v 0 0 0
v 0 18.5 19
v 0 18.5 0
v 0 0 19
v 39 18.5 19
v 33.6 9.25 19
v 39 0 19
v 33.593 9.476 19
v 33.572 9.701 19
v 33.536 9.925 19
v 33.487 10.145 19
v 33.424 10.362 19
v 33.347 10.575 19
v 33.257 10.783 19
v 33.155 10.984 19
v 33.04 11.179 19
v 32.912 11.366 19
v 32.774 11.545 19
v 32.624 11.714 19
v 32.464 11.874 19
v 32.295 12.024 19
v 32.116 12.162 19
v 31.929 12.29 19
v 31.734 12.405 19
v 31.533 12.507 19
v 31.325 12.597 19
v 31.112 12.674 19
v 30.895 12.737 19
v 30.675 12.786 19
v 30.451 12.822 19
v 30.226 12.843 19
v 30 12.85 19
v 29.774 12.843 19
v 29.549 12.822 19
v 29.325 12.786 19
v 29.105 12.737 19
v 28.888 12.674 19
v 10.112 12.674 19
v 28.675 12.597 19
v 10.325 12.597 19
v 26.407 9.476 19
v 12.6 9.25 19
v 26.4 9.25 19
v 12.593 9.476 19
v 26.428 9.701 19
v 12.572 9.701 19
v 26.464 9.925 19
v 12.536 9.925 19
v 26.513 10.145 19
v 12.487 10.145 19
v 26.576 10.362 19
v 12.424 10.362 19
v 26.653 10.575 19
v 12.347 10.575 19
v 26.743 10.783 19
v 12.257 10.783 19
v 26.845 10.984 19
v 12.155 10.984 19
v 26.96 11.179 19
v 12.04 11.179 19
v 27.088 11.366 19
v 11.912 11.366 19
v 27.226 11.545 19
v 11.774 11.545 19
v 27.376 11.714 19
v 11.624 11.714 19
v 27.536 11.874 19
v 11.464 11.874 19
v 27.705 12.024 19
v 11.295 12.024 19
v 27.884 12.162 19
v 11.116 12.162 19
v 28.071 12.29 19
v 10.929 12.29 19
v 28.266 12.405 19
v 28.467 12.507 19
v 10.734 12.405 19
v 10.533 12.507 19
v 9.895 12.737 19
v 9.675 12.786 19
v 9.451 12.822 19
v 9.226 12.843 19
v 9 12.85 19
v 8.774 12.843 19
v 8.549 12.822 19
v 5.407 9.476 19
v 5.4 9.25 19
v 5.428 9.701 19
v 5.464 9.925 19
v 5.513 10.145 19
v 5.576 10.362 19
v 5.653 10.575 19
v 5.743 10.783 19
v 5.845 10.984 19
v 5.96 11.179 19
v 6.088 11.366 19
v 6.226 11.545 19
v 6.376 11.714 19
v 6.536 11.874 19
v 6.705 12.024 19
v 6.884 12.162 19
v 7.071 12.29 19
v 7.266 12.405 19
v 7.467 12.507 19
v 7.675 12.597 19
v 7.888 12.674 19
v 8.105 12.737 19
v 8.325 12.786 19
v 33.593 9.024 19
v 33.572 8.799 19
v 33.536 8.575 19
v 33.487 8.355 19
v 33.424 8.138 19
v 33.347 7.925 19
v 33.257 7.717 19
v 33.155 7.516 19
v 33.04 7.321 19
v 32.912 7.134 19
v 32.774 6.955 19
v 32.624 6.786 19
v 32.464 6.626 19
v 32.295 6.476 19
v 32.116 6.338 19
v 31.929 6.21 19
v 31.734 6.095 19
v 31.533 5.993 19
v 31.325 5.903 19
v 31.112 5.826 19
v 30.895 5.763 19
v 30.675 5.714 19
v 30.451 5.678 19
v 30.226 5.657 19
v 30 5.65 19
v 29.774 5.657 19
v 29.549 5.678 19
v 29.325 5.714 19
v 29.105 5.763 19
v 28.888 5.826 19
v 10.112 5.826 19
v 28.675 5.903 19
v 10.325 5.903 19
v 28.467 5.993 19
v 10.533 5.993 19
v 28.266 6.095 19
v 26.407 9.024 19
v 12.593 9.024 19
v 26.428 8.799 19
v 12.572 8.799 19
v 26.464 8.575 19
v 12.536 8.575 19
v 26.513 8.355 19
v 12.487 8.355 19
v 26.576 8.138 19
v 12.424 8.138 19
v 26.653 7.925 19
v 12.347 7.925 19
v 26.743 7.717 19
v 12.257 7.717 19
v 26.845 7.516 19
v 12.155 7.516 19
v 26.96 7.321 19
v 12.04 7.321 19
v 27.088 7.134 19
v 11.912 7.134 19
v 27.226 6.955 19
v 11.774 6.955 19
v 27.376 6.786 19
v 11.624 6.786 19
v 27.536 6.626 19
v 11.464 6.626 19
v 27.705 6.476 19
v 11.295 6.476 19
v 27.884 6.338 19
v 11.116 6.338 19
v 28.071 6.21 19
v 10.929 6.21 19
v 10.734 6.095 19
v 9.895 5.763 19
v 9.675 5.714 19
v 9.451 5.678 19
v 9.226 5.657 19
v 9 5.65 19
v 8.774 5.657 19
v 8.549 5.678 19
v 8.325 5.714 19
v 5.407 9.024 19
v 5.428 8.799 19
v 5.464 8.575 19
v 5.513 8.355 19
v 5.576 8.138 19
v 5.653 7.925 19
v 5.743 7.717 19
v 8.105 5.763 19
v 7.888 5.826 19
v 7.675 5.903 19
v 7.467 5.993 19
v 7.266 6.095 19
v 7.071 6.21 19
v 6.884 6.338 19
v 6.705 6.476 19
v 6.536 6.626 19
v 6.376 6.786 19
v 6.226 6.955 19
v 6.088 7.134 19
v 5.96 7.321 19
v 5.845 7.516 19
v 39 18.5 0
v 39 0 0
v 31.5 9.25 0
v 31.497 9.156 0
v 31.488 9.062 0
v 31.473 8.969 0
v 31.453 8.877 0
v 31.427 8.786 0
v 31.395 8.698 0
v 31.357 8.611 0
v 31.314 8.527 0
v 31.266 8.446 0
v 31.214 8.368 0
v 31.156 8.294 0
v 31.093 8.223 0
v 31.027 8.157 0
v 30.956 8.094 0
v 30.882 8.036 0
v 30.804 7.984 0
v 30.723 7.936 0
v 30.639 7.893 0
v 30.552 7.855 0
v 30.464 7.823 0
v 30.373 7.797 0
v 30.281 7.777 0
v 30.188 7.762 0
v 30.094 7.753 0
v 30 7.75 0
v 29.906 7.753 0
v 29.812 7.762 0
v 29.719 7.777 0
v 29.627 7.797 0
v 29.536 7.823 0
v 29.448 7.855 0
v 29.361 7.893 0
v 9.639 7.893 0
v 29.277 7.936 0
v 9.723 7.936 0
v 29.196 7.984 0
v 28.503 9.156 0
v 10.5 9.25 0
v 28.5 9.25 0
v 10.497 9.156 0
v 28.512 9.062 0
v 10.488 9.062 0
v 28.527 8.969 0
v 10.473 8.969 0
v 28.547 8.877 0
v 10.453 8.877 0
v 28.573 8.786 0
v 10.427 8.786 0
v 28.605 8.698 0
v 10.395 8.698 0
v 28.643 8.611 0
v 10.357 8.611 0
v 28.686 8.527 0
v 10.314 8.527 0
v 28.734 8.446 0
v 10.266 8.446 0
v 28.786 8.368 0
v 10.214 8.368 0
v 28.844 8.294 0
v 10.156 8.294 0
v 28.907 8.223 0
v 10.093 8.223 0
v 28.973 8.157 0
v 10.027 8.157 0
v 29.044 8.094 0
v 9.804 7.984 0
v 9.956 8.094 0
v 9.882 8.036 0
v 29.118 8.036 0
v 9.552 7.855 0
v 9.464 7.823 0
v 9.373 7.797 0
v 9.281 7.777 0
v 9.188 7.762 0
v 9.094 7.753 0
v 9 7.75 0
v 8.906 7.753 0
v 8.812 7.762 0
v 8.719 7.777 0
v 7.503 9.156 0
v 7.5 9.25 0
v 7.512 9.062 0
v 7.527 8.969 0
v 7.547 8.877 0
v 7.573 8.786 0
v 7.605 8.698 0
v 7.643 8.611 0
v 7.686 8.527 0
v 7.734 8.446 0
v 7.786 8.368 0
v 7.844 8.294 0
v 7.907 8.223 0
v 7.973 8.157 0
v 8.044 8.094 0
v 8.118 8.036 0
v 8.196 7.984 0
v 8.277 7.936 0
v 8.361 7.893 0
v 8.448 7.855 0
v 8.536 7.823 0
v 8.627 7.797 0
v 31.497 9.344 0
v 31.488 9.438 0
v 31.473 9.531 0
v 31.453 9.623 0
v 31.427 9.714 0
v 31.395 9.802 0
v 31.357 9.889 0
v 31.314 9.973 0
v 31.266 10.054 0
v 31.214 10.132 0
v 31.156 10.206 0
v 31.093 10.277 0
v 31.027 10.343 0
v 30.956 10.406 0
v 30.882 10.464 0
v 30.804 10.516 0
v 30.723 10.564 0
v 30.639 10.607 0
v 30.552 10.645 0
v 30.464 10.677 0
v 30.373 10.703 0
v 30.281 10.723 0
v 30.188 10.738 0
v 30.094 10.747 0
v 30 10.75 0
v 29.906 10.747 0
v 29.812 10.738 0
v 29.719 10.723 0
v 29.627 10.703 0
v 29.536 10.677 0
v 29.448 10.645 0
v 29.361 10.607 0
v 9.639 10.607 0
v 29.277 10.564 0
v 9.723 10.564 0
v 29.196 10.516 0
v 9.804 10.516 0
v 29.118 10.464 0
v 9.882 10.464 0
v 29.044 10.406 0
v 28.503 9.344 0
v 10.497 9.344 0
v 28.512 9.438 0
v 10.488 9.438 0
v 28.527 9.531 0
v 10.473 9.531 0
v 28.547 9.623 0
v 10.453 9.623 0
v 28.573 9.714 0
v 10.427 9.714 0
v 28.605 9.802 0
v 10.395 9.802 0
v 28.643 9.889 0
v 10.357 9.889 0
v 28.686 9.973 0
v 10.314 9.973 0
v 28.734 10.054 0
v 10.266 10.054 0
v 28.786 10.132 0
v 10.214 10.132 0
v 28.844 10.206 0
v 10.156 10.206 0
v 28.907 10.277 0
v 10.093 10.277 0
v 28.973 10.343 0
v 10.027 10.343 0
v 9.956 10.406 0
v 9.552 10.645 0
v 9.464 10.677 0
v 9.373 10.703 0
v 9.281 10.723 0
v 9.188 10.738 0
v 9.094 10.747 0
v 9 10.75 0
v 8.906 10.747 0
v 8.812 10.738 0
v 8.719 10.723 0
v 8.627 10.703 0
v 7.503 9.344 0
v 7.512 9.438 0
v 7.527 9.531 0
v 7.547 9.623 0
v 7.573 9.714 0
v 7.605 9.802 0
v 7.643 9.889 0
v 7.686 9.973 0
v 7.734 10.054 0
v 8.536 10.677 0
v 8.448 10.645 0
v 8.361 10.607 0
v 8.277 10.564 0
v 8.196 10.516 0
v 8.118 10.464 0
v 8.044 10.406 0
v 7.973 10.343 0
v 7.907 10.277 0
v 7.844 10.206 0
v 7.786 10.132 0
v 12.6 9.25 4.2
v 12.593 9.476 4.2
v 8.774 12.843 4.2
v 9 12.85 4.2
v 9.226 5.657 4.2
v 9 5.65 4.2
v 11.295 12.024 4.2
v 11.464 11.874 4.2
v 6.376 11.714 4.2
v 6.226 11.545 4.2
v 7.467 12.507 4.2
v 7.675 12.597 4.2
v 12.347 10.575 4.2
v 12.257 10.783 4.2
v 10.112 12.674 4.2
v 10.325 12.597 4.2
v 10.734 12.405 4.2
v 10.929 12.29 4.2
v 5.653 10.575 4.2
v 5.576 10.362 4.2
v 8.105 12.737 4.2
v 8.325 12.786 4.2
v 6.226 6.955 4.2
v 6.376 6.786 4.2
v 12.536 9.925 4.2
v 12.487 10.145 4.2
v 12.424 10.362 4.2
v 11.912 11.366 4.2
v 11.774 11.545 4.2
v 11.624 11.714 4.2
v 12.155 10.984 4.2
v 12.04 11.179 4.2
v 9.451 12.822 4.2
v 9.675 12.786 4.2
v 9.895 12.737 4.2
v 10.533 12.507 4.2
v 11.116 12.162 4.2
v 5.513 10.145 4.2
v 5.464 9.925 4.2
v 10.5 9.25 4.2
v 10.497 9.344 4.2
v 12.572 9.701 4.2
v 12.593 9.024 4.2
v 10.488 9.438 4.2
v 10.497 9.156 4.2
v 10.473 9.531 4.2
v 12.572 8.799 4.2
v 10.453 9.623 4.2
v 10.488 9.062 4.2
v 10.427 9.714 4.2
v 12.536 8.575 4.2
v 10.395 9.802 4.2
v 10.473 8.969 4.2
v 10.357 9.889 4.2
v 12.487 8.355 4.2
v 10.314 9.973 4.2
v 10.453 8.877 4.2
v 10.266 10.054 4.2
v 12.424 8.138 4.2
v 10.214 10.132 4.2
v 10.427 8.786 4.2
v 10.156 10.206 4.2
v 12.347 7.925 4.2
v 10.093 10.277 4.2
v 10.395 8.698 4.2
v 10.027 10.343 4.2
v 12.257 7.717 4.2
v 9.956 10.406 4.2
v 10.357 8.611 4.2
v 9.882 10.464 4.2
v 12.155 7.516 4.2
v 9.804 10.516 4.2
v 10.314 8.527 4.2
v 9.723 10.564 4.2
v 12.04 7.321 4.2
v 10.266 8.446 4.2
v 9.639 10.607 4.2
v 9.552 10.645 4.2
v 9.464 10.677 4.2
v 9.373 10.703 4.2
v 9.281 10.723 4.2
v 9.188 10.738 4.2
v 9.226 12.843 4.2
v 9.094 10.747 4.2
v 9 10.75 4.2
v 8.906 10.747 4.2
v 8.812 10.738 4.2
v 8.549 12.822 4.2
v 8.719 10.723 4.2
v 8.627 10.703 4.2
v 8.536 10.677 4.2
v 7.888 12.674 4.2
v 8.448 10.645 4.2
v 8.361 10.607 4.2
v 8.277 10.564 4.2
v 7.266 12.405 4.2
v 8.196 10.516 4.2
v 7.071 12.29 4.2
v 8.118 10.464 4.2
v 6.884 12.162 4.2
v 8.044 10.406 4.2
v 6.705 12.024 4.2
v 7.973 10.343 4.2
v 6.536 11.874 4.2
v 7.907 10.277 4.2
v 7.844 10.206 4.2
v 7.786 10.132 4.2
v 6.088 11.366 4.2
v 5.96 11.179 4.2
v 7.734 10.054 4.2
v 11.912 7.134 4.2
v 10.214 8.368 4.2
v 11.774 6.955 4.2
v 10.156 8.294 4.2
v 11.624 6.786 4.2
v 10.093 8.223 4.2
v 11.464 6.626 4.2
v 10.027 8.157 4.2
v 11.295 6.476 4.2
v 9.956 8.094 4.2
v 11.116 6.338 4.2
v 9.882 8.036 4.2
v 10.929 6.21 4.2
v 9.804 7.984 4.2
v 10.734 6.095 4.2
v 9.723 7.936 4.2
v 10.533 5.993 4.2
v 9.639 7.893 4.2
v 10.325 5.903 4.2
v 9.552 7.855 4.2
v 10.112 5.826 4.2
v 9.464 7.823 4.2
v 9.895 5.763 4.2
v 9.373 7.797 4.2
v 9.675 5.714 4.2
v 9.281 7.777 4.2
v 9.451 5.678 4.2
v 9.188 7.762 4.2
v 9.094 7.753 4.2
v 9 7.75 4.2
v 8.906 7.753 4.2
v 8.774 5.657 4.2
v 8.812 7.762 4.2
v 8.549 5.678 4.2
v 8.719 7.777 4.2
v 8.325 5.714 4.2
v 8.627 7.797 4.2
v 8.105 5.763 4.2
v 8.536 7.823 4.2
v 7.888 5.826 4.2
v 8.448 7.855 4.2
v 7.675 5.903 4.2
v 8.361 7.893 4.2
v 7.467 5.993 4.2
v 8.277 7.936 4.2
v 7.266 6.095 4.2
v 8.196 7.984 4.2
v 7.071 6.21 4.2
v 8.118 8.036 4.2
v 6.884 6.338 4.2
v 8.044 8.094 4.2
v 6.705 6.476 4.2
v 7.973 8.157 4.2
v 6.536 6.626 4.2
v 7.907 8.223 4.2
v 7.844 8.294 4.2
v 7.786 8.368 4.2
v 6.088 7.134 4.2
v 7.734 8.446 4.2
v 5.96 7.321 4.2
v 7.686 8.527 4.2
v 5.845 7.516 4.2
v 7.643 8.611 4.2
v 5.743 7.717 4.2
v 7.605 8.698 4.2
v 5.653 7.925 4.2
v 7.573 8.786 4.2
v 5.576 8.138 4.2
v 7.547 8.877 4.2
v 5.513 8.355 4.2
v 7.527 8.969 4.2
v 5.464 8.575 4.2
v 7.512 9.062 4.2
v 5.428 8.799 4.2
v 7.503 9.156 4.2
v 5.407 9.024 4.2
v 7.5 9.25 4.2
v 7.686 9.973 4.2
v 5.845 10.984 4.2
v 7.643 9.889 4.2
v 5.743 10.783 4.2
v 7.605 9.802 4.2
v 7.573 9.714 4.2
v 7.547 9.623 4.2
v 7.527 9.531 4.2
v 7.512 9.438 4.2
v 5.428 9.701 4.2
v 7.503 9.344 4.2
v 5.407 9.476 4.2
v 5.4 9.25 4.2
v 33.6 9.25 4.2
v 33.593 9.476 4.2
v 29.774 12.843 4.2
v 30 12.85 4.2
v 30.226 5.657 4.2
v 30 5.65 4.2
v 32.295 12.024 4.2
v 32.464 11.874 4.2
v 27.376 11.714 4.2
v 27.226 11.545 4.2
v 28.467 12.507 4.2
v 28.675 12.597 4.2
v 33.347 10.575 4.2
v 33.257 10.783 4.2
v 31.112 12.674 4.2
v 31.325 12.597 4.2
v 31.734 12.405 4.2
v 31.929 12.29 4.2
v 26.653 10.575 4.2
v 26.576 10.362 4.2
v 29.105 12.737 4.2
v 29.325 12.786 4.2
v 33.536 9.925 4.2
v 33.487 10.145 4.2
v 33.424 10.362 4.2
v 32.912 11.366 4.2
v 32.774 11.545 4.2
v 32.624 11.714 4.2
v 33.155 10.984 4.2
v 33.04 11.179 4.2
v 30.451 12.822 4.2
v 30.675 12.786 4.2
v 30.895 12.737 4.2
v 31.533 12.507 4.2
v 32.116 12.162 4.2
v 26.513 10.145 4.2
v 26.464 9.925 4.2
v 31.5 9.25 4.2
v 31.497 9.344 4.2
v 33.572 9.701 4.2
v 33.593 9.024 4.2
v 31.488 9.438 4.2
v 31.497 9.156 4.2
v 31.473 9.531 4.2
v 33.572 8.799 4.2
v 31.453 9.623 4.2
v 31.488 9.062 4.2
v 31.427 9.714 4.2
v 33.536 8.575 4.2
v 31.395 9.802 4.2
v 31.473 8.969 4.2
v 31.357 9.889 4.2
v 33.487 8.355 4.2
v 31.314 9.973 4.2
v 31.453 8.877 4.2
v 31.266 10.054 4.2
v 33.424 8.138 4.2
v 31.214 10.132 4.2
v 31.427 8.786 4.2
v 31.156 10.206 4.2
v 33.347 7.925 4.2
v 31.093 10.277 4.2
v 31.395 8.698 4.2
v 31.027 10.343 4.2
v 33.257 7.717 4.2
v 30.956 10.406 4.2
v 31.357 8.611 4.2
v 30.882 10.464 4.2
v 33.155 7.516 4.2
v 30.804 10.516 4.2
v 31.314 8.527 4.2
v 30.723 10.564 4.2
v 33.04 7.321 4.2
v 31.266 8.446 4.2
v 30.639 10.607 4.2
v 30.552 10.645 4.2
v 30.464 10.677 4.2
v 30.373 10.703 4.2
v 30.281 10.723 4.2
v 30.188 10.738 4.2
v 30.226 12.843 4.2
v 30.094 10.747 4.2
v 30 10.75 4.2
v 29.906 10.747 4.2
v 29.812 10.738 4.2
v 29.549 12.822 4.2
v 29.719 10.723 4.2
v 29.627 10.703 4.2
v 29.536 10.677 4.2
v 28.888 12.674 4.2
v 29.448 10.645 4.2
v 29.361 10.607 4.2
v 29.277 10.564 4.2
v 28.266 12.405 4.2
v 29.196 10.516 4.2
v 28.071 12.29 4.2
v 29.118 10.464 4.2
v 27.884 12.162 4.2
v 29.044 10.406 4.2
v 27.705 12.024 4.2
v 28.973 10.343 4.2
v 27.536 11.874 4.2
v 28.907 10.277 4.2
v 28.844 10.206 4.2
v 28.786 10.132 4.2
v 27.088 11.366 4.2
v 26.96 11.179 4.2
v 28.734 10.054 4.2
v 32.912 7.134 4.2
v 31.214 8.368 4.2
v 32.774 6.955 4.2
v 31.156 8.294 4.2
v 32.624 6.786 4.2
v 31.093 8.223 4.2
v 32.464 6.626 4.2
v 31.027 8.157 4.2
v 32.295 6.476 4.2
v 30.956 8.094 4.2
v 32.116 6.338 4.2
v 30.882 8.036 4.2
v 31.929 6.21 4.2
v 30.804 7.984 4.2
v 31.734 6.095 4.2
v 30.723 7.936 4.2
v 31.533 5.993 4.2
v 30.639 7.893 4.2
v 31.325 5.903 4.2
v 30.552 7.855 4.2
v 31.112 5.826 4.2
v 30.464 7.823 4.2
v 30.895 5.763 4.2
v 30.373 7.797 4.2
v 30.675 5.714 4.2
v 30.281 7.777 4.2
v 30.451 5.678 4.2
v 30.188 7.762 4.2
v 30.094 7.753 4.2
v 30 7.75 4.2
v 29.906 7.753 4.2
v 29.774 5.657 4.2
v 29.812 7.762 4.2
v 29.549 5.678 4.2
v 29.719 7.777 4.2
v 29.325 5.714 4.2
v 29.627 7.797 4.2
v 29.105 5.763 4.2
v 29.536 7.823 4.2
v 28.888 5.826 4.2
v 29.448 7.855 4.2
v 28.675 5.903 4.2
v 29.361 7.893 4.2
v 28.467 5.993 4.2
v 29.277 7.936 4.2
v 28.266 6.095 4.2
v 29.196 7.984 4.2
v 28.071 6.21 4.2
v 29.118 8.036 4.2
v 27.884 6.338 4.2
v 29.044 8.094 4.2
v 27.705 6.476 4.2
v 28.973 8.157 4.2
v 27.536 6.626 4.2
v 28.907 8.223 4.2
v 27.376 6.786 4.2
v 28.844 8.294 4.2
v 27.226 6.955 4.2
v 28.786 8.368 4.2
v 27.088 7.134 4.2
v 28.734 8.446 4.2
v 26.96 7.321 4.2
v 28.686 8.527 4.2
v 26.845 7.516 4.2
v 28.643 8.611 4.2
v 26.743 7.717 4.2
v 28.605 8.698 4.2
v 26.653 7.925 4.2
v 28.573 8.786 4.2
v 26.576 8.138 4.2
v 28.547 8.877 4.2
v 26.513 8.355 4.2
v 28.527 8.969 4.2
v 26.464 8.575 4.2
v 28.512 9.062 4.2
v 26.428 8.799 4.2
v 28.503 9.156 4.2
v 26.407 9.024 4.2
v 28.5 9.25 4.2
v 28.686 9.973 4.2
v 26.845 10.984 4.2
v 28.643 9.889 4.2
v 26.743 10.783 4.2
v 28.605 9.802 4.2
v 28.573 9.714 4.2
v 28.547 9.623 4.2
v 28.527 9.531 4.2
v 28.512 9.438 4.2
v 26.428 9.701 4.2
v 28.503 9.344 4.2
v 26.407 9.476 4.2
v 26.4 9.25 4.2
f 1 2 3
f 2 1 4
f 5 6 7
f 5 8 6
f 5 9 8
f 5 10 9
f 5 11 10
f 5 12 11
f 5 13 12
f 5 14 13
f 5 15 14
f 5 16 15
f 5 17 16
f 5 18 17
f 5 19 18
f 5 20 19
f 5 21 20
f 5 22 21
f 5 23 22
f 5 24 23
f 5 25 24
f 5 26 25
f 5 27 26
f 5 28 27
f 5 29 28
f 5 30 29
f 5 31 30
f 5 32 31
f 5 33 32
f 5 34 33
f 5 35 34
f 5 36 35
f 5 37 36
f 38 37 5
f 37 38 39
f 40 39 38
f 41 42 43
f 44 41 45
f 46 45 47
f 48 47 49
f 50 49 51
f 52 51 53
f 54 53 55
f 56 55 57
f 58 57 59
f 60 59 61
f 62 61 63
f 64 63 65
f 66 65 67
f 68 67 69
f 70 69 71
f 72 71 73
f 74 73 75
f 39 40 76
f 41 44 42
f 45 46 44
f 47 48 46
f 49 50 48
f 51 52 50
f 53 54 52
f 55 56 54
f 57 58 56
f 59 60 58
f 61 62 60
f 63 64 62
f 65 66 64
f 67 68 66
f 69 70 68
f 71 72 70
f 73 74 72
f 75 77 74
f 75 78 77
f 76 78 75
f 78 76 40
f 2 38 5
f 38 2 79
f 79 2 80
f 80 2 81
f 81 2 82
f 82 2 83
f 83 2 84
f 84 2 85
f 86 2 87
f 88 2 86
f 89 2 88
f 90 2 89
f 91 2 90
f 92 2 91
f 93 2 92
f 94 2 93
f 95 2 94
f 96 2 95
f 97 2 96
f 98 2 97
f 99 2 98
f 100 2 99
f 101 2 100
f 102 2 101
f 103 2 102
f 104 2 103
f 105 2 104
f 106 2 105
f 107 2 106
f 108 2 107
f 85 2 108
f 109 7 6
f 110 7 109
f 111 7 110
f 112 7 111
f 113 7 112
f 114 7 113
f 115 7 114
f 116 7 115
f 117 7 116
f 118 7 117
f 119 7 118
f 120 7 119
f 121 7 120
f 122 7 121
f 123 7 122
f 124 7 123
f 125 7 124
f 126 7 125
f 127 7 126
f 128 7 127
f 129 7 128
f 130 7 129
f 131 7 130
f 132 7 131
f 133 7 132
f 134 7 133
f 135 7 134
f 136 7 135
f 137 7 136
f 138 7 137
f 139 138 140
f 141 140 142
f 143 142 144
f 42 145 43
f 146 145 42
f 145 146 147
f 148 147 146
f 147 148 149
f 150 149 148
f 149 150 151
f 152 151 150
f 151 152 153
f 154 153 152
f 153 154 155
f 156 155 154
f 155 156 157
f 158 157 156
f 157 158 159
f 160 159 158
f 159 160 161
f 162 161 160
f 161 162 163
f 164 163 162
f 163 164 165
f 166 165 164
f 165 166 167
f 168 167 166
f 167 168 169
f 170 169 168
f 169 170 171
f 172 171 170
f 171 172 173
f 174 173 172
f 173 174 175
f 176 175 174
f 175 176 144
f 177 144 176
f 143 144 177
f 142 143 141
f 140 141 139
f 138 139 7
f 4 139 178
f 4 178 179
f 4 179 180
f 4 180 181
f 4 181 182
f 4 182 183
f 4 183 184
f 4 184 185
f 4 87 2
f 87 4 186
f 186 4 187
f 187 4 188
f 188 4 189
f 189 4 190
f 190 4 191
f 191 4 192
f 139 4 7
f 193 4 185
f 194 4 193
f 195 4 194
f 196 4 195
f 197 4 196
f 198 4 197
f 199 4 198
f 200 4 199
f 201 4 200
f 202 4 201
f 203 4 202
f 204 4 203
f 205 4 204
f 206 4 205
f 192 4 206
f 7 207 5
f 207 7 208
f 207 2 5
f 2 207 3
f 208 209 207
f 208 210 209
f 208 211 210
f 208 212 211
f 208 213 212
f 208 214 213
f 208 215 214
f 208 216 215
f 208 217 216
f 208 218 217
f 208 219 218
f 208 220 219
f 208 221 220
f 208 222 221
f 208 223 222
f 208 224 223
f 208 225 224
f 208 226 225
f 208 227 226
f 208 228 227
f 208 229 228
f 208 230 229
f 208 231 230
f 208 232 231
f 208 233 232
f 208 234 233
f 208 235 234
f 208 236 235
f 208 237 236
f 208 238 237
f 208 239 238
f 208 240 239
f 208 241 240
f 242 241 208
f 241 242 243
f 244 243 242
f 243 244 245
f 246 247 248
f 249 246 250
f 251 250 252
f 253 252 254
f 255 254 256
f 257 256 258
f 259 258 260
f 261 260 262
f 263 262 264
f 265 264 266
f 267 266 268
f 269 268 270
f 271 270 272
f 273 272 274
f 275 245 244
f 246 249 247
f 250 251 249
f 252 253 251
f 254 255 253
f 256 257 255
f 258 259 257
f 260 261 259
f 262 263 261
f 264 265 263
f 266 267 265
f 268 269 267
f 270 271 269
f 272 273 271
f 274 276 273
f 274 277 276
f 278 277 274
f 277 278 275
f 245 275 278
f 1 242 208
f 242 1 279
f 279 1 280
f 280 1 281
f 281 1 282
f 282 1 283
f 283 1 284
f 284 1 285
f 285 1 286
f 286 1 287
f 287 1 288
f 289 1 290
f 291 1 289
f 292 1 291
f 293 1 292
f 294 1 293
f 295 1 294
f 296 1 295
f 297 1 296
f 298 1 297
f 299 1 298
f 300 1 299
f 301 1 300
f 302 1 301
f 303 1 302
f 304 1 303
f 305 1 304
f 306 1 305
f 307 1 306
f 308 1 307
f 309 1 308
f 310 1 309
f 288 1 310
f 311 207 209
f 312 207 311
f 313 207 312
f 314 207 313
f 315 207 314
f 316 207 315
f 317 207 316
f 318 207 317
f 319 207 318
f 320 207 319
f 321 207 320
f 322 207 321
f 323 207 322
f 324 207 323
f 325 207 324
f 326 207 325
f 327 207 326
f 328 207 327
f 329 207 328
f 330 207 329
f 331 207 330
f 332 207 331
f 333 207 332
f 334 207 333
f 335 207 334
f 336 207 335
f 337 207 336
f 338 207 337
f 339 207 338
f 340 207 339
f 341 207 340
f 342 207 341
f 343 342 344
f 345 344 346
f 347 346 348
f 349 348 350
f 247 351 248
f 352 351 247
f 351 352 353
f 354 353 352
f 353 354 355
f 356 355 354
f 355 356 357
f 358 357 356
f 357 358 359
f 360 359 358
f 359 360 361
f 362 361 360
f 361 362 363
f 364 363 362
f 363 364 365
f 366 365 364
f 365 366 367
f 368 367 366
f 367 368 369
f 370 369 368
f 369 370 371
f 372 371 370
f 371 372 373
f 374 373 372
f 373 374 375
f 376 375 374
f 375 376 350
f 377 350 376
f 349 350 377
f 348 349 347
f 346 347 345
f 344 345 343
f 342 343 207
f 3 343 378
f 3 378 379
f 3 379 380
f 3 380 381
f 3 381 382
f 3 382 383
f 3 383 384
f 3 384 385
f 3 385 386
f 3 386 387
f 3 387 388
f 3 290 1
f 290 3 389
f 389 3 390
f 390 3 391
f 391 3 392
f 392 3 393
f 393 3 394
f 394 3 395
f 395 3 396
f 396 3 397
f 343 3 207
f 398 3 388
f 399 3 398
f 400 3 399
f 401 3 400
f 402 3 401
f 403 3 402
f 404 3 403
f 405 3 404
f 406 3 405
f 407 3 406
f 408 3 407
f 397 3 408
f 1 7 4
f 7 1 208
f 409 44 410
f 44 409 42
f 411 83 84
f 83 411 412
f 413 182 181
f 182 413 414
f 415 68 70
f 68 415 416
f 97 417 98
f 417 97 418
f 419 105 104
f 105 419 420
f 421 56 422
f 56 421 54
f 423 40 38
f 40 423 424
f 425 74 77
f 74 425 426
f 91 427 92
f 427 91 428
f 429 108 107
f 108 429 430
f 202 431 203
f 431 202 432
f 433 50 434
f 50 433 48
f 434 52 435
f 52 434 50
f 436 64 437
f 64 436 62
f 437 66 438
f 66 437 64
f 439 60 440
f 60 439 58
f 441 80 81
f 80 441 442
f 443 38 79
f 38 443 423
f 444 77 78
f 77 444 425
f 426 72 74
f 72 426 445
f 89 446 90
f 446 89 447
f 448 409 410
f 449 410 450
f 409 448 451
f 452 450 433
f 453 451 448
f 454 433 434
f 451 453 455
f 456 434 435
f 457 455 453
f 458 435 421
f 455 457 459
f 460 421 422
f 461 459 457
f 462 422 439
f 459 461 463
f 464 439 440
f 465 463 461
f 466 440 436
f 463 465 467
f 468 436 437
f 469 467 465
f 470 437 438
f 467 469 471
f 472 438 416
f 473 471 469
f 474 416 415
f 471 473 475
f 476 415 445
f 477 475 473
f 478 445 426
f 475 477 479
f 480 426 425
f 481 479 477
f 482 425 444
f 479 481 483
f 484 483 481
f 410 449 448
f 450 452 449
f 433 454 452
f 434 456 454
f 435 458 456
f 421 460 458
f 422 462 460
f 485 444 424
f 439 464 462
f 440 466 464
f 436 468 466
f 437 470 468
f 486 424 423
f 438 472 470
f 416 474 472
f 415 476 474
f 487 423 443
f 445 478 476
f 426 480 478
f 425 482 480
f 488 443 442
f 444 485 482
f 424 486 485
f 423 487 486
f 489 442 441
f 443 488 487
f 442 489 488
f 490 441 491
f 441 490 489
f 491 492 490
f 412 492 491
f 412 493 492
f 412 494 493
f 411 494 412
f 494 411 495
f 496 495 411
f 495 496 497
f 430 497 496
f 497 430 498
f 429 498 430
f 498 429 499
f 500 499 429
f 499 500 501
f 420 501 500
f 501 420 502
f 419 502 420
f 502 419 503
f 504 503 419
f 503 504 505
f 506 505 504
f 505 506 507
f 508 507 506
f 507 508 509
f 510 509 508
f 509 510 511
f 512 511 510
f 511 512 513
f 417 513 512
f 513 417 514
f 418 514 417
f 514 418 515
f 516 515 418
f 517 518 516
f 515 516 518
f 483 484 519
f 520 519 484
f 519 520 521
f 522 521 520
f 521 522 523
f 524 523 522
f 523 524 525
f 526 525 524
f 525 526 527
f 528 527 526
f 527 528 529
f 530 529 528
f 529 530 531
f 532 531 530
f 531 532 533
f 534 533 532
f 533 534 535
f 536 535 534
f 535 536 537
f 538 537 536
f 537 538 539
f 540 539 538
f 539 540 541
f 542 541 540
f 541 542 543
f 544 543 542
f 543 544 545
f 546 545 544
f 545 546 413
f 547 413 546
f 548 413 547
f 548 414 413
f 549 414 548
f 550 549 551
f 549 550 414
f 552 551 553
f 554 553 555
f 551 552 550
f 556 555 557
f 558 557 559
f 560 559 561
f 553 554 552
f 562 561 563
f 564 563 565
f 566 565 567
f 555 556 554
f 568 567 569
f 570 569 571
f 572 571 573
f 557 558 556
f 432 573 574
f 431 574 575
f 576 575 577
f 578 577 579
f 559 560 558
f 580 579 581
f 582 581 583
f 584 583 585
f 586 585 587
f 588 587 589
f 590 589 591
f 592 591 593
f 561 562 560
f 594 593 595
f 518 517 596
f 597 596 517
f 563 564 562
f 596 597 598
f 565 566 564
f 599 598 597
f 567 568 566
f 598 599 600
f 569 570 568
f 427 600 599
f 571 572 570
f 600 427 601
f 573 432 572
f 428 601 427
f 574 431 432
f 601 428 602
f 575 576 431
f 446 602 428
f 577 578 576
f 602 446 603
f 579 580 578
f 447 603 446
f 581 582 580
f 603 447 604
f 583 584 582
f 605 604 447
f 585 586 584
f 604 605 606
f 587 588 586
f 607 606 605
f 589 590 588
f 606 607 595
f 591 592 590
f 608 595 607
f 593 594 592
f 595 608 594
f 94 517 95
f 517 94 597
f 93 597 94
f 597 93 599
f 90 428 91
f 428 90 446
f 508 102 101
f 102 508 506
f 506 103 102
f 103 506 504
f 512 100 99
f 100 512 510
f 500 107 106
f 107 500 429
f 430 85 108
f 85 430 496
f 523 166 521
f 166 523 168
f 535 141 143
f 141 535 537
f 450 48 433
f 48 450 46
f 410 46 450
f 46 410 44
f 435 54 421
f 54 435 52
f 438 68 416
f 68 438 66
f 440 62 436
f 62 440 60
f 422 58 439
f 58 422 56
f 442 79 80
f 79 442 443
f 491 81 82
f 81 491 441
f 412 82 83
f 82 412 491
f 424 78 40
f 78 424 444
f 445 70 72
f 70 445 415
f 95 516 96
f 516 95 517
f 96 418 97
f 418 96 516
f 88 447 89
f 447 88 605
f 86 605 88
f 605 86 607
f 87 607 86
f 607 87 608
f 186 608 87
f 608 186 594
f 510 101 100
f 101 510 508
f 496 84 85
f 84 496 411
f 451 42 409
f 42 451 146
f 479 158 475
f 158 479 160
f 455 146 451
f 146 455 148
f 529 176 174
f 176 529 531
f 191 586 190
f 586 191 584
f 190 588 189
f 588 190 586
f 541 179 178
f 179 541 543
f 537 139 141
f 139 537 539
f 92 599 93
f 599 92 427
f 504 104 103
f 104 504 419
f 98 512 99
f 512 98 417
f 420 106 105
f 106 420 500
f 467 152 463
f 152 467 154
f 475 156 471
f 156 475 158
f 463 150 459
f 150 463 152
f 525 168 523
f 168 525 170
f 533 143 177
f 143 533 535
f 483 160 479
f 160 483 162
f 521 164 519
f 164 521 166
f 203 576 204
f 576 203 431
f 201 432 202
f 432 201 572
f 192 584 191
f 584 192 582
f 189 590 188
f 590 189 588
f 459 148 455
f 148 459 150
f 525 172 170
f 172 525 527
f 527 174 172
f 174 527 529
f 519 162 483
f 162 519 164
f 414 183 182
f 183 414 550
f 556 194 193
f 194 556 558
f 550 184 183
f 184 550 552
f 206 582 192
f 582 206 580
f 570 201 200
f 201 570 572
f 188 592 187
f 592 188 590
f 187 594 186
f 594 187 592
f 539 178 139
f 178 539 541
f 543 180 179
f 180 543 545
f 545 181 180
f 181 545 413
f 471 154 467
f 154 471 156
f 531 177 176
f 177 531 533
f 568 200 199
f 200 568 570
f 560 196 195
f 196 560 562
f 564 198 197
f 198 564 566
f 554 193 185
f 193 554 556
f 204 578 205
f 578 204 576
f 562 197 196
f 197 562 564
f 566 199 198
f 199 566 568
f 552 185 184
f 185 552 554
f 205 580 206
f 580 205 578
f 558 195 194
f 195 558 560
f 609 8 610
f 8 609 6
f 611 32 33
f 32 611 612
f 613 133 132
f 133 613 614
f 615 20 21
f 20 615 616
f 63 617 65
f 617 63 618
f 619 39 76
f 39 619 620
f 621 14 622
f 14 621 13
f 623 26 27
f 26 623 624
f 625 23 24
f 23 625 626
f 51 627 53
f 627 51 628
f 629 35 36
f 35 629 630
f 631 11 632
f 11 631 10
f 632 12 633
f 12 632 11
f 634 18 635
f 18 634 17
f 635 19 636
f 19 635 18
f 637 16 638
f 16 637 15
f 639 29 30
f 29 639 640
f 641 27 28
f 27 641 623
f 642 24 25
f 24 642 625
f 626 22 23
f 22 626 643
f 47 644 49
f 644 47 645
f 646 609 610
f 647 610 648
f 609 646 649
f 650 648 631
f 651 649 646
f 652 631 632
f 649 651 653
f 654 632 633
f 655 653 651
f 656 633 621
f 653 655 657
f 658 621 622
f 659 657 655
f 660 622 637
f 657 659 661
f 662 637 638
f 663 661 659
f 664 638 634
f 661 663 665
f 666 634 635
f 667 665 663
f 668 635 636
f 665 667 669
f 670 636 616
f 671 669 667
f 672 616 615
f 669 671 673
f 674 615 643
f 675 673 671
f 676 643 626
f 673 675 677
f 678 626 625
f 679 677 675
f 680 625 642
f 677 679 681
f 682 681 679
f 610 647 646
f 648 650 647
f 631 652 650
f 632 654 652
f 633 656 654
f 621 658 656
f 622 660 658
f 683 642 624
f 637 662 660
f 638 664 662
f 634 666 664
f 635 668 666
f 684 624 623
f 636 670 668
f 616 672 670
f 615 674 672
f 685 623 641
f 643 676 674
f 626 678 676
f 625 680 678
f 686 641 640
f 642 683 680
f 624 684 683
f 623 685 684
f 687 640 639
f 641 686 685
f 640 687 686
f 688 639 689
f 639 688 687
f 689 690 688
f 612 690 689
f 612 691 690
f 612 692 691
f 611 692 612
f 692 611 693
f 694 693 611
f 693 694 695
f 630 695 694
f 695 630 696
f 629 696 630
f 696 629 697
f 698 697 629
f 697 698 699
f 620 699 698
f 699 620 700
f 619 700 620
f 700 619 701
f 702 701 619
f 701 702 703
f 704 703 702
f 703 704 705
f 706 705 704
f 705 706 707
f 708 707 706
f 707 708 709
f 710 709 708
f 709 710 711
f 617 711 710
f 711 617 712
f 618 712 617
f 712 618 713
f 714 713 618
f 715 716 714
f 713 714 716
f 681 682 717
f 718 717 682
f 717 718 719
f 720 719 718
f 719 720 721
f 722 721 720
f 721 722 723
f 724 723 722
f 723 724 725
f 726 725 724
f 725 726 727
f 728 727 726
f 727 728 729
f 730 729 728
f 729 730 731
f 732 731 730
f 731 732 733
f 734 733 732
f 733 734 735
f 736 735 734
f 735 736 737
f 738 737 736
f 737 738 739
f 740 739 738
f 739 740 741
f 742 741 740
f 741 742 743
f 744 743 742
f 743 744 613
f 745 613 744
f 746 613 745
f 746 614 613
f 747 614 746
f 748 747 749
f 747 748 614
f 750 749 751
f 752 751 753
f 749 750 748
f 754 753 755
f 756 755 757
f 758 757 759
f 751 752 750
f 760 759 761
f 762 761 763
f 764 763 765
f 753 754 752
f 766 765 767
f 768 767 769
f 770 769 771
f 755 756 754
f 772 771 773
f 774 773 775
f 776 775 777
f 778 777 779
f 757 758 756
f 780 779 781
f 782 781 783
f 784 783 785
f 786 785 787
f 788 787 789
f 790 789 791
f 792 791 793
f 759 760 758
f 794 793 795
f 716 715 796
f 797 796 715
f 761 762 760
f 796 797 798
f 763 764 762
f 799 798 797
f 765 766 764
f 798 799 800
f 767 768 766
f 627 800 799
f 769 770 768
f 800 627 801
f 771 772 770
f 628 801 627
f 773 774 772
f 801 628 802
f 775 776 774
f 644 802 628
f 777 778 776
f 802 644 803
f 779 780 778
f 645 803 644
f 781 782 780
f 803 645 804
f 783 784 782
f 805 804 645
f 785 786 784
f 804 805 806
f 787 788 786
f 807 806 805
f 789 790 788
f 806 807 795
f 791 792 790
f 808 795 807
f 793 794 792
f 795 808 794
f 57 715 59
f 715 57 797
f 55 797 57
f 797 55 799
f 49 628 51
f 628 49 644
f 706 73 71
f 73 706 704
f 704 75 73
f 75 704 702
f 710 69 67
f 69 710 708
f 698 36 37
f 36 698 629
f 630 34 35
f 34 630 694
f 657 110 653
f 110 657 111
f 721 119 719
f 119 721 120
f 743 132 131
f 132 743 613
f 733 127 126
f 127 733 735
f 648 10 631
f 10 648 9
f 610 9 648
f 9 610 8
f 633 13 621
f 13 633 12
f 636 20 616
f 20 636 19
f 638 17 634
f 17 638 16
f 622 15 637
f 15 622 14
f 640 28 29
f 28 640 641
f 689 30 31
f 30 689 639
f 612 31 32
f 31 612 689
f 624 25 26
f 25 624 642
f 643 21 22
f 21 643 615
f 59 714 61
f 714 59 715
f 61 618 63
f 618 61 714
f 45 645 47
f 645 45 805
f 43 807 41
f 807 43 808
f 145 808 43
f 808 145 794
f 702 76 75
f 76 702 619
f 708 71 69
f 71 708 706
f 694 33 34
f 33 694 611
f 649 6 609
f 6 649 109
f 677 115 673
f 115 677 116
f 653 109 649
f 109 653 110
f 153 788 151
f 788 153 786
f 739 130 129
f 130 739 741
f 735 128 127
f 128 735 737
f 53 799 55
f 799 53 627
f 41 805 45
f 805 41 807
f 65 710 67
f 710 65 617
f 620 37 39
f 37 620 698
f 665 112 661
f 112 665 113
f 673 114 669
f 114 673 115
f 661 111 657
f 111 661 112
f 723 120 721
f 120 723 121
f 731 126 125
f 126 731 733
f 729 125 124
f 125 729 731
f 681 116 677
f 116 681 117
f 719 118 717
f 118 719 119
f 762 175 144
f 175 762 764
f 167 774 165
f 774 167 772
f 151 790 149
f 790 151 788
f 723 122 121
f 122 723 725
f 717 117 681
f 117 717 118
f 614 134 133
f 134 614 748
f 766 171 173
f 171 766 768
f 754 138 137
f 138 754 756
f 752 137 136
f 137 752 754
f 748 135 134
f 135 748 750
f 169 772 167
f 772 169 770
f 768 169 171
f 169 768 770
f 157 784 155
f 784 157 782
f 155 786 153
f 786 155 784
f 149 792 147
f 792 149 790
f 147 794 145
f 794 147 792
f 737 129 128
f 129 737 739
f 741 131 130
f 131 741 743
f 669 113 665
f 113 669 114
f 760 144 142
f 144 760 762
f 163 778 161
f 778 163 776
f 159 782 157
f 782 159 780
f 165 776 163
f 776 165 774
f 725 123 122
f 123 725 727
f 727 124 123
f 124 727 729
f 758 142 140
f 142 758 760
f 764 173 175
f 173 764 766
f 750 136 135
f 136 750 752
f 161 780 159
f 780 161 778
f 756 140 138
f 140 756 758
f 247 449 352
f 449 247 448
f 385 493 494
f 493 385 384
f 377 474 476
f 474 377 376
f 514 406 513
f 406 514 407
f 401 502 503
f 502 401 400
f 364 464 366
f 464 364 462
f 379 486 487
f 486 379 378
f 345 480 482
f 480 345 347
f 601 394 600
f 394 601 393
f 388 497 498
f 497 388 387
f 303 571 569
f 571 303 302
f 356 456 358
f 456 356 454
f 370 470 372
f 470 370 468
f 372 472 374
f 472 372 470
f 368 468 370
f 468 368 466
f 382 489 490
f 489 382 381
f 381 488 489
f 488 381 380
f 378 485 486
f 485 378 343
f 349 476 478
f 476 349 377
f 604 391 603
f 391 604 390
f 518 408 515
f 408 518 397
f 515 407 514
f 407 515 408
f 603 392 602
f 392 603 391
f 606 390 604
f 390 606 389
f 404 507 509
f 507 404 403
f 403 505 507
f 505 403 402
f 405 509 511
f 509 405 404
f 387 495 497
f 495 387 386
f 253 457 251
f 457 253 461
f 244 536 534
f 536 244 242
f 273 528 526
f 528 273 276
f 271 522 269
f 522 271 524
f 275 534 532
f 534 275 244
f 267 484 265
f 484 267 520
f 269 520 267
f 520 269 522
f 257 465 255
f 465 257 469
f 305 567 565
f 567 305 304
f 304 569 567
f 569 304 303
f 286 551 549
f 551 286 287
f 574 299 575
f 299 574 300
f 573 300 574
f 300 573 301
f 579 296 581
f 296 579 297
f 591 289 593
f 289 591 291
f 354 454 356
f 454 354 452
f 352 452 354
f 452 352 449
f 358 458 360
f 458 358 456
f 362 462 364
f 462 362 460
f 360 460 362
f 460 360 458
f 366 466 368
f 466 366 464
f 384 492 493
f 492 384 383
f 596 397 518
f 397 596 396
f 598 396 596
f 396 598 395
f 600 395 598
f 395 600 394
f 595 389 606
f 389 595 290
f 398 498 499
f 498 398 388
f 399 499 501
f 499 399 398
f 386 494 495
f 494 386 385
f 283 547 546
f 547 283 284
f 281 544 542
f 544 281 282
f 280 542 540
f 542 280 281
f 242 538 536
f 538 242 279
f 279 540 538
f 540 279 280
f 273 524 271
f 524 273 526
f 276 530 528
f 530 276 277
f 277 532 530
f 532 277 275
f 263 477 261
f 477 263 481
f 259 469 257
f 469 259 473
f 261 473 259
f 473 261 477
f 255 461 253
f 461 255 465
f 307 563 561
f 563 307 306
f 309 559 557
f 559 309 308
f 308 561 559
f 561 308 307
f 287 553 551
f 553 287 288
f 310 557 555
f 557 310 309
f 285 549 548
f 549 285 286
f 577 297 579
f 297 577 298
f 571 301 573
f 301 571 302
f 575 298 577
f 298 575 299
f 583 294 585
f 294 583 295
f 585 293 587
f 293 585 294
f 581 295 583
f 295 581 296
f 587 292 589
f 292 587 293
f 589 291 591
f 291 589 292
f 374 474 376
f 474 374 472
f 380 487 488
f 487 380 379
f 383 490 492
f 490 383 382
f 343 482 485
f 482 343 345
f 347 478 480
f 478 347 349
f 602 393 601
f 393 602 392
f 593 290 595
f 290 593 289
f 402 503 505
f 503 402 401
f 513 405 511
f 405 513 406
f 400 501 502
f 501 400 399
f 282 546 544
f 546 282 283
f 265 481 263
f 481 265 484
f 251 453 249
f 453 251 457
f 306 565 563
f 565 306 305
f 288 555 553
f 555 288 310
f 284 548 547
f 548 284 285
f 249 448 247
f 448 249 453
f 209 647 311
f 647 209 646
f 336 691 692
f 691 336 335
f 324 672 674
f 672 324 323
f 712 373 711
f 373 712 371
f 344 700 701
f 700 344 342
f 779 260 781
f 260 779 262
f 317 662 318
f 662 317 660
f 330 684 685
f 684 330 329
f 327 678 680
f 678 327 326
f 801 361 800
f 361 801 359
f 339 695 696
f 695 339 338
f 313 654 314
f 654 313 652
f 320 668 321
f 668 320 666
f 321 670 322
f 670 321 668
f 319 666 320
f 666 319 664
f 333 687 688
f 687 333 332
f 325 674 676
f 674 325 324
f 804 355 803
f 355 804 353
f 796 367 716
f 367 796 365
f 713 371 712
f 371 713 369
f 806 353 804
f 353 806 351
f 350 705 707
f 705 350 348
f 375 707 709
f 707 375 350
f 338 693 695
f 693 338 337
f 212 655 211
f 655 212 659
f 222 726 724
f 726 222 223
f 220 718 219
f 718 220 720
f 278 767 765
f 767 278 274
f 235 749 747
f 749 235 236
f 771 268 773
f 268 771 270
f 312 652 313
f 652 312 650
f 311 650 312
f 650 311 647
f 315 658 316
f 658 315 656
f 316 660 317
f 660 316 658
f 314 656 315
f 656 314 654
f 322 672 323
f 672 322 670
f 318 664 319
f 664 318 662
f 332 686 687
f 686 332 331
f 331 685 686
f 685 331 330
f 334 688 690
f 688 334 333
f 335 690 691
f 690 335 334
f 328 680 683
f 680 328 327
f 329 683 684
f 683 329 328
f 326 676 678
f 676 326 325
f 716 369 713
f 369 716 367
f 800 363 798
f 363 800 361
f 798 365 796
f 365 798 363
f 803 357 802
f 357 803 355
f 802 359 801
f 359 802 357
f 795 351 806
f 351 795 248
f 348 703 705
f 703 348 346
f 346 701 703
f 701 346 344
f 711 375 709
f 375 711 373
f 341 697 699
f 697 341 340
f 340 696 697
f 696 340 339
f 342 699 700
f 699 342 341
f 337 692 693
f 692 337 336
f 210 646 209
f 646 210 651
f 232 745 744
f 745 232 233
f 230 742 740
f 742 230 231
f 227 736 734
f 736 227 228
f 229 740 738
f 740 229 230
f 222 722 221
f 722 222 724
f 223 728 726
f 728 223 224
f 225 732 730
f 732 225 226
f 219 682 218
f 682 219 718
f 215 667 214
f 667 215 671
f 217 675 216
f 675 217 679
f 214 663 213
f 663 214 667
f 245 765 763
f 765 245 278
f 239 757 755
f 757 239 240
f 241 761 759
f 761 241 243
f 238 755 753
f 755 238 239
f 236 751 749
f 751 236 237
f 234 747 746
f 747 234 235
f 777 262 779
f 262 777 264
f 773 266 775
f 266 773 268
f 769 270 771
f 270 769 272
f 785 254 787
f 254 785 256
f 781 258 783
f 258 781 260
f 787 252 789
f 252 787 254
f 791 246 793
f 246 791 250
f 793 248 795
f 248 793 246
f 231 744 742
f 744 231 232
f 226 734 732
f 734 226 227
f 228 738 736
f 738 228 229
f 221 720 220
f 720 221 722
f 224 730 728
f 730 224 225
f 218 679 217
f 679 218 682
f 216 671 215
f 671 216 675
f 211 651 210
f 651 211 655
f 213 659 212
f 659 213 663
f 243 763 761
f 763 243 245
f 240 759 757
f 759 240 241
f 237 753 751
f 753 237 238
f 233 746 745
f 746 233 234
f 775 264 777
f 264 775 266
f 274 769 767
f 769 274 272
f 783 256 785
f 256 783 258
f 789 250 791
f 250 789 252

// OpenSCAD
/*
    Description of "Brick" - an object to support changing table for children  
    Made with: OpenSCAD   
    3D Printed with: Creality Ender 6
    Units: mm
    Jan Foryś 2023
*/

difference() {
    cube([39,18.5,19], 0);
    translate([9,9.25,4.2])
        cylinder (h = 19, r=3.6, $fn=100);
    translate([30,9.25,4.2])
        cylinder (h = 19, r=3.6, $fn=100);
    translate([9,9.25,-1])
        cylinder (h = 19, r=1.5, $fn=100);
    translate([30,9.25,-1])
        cylinder (h = 19, r=1.5, $fn=100);
}
